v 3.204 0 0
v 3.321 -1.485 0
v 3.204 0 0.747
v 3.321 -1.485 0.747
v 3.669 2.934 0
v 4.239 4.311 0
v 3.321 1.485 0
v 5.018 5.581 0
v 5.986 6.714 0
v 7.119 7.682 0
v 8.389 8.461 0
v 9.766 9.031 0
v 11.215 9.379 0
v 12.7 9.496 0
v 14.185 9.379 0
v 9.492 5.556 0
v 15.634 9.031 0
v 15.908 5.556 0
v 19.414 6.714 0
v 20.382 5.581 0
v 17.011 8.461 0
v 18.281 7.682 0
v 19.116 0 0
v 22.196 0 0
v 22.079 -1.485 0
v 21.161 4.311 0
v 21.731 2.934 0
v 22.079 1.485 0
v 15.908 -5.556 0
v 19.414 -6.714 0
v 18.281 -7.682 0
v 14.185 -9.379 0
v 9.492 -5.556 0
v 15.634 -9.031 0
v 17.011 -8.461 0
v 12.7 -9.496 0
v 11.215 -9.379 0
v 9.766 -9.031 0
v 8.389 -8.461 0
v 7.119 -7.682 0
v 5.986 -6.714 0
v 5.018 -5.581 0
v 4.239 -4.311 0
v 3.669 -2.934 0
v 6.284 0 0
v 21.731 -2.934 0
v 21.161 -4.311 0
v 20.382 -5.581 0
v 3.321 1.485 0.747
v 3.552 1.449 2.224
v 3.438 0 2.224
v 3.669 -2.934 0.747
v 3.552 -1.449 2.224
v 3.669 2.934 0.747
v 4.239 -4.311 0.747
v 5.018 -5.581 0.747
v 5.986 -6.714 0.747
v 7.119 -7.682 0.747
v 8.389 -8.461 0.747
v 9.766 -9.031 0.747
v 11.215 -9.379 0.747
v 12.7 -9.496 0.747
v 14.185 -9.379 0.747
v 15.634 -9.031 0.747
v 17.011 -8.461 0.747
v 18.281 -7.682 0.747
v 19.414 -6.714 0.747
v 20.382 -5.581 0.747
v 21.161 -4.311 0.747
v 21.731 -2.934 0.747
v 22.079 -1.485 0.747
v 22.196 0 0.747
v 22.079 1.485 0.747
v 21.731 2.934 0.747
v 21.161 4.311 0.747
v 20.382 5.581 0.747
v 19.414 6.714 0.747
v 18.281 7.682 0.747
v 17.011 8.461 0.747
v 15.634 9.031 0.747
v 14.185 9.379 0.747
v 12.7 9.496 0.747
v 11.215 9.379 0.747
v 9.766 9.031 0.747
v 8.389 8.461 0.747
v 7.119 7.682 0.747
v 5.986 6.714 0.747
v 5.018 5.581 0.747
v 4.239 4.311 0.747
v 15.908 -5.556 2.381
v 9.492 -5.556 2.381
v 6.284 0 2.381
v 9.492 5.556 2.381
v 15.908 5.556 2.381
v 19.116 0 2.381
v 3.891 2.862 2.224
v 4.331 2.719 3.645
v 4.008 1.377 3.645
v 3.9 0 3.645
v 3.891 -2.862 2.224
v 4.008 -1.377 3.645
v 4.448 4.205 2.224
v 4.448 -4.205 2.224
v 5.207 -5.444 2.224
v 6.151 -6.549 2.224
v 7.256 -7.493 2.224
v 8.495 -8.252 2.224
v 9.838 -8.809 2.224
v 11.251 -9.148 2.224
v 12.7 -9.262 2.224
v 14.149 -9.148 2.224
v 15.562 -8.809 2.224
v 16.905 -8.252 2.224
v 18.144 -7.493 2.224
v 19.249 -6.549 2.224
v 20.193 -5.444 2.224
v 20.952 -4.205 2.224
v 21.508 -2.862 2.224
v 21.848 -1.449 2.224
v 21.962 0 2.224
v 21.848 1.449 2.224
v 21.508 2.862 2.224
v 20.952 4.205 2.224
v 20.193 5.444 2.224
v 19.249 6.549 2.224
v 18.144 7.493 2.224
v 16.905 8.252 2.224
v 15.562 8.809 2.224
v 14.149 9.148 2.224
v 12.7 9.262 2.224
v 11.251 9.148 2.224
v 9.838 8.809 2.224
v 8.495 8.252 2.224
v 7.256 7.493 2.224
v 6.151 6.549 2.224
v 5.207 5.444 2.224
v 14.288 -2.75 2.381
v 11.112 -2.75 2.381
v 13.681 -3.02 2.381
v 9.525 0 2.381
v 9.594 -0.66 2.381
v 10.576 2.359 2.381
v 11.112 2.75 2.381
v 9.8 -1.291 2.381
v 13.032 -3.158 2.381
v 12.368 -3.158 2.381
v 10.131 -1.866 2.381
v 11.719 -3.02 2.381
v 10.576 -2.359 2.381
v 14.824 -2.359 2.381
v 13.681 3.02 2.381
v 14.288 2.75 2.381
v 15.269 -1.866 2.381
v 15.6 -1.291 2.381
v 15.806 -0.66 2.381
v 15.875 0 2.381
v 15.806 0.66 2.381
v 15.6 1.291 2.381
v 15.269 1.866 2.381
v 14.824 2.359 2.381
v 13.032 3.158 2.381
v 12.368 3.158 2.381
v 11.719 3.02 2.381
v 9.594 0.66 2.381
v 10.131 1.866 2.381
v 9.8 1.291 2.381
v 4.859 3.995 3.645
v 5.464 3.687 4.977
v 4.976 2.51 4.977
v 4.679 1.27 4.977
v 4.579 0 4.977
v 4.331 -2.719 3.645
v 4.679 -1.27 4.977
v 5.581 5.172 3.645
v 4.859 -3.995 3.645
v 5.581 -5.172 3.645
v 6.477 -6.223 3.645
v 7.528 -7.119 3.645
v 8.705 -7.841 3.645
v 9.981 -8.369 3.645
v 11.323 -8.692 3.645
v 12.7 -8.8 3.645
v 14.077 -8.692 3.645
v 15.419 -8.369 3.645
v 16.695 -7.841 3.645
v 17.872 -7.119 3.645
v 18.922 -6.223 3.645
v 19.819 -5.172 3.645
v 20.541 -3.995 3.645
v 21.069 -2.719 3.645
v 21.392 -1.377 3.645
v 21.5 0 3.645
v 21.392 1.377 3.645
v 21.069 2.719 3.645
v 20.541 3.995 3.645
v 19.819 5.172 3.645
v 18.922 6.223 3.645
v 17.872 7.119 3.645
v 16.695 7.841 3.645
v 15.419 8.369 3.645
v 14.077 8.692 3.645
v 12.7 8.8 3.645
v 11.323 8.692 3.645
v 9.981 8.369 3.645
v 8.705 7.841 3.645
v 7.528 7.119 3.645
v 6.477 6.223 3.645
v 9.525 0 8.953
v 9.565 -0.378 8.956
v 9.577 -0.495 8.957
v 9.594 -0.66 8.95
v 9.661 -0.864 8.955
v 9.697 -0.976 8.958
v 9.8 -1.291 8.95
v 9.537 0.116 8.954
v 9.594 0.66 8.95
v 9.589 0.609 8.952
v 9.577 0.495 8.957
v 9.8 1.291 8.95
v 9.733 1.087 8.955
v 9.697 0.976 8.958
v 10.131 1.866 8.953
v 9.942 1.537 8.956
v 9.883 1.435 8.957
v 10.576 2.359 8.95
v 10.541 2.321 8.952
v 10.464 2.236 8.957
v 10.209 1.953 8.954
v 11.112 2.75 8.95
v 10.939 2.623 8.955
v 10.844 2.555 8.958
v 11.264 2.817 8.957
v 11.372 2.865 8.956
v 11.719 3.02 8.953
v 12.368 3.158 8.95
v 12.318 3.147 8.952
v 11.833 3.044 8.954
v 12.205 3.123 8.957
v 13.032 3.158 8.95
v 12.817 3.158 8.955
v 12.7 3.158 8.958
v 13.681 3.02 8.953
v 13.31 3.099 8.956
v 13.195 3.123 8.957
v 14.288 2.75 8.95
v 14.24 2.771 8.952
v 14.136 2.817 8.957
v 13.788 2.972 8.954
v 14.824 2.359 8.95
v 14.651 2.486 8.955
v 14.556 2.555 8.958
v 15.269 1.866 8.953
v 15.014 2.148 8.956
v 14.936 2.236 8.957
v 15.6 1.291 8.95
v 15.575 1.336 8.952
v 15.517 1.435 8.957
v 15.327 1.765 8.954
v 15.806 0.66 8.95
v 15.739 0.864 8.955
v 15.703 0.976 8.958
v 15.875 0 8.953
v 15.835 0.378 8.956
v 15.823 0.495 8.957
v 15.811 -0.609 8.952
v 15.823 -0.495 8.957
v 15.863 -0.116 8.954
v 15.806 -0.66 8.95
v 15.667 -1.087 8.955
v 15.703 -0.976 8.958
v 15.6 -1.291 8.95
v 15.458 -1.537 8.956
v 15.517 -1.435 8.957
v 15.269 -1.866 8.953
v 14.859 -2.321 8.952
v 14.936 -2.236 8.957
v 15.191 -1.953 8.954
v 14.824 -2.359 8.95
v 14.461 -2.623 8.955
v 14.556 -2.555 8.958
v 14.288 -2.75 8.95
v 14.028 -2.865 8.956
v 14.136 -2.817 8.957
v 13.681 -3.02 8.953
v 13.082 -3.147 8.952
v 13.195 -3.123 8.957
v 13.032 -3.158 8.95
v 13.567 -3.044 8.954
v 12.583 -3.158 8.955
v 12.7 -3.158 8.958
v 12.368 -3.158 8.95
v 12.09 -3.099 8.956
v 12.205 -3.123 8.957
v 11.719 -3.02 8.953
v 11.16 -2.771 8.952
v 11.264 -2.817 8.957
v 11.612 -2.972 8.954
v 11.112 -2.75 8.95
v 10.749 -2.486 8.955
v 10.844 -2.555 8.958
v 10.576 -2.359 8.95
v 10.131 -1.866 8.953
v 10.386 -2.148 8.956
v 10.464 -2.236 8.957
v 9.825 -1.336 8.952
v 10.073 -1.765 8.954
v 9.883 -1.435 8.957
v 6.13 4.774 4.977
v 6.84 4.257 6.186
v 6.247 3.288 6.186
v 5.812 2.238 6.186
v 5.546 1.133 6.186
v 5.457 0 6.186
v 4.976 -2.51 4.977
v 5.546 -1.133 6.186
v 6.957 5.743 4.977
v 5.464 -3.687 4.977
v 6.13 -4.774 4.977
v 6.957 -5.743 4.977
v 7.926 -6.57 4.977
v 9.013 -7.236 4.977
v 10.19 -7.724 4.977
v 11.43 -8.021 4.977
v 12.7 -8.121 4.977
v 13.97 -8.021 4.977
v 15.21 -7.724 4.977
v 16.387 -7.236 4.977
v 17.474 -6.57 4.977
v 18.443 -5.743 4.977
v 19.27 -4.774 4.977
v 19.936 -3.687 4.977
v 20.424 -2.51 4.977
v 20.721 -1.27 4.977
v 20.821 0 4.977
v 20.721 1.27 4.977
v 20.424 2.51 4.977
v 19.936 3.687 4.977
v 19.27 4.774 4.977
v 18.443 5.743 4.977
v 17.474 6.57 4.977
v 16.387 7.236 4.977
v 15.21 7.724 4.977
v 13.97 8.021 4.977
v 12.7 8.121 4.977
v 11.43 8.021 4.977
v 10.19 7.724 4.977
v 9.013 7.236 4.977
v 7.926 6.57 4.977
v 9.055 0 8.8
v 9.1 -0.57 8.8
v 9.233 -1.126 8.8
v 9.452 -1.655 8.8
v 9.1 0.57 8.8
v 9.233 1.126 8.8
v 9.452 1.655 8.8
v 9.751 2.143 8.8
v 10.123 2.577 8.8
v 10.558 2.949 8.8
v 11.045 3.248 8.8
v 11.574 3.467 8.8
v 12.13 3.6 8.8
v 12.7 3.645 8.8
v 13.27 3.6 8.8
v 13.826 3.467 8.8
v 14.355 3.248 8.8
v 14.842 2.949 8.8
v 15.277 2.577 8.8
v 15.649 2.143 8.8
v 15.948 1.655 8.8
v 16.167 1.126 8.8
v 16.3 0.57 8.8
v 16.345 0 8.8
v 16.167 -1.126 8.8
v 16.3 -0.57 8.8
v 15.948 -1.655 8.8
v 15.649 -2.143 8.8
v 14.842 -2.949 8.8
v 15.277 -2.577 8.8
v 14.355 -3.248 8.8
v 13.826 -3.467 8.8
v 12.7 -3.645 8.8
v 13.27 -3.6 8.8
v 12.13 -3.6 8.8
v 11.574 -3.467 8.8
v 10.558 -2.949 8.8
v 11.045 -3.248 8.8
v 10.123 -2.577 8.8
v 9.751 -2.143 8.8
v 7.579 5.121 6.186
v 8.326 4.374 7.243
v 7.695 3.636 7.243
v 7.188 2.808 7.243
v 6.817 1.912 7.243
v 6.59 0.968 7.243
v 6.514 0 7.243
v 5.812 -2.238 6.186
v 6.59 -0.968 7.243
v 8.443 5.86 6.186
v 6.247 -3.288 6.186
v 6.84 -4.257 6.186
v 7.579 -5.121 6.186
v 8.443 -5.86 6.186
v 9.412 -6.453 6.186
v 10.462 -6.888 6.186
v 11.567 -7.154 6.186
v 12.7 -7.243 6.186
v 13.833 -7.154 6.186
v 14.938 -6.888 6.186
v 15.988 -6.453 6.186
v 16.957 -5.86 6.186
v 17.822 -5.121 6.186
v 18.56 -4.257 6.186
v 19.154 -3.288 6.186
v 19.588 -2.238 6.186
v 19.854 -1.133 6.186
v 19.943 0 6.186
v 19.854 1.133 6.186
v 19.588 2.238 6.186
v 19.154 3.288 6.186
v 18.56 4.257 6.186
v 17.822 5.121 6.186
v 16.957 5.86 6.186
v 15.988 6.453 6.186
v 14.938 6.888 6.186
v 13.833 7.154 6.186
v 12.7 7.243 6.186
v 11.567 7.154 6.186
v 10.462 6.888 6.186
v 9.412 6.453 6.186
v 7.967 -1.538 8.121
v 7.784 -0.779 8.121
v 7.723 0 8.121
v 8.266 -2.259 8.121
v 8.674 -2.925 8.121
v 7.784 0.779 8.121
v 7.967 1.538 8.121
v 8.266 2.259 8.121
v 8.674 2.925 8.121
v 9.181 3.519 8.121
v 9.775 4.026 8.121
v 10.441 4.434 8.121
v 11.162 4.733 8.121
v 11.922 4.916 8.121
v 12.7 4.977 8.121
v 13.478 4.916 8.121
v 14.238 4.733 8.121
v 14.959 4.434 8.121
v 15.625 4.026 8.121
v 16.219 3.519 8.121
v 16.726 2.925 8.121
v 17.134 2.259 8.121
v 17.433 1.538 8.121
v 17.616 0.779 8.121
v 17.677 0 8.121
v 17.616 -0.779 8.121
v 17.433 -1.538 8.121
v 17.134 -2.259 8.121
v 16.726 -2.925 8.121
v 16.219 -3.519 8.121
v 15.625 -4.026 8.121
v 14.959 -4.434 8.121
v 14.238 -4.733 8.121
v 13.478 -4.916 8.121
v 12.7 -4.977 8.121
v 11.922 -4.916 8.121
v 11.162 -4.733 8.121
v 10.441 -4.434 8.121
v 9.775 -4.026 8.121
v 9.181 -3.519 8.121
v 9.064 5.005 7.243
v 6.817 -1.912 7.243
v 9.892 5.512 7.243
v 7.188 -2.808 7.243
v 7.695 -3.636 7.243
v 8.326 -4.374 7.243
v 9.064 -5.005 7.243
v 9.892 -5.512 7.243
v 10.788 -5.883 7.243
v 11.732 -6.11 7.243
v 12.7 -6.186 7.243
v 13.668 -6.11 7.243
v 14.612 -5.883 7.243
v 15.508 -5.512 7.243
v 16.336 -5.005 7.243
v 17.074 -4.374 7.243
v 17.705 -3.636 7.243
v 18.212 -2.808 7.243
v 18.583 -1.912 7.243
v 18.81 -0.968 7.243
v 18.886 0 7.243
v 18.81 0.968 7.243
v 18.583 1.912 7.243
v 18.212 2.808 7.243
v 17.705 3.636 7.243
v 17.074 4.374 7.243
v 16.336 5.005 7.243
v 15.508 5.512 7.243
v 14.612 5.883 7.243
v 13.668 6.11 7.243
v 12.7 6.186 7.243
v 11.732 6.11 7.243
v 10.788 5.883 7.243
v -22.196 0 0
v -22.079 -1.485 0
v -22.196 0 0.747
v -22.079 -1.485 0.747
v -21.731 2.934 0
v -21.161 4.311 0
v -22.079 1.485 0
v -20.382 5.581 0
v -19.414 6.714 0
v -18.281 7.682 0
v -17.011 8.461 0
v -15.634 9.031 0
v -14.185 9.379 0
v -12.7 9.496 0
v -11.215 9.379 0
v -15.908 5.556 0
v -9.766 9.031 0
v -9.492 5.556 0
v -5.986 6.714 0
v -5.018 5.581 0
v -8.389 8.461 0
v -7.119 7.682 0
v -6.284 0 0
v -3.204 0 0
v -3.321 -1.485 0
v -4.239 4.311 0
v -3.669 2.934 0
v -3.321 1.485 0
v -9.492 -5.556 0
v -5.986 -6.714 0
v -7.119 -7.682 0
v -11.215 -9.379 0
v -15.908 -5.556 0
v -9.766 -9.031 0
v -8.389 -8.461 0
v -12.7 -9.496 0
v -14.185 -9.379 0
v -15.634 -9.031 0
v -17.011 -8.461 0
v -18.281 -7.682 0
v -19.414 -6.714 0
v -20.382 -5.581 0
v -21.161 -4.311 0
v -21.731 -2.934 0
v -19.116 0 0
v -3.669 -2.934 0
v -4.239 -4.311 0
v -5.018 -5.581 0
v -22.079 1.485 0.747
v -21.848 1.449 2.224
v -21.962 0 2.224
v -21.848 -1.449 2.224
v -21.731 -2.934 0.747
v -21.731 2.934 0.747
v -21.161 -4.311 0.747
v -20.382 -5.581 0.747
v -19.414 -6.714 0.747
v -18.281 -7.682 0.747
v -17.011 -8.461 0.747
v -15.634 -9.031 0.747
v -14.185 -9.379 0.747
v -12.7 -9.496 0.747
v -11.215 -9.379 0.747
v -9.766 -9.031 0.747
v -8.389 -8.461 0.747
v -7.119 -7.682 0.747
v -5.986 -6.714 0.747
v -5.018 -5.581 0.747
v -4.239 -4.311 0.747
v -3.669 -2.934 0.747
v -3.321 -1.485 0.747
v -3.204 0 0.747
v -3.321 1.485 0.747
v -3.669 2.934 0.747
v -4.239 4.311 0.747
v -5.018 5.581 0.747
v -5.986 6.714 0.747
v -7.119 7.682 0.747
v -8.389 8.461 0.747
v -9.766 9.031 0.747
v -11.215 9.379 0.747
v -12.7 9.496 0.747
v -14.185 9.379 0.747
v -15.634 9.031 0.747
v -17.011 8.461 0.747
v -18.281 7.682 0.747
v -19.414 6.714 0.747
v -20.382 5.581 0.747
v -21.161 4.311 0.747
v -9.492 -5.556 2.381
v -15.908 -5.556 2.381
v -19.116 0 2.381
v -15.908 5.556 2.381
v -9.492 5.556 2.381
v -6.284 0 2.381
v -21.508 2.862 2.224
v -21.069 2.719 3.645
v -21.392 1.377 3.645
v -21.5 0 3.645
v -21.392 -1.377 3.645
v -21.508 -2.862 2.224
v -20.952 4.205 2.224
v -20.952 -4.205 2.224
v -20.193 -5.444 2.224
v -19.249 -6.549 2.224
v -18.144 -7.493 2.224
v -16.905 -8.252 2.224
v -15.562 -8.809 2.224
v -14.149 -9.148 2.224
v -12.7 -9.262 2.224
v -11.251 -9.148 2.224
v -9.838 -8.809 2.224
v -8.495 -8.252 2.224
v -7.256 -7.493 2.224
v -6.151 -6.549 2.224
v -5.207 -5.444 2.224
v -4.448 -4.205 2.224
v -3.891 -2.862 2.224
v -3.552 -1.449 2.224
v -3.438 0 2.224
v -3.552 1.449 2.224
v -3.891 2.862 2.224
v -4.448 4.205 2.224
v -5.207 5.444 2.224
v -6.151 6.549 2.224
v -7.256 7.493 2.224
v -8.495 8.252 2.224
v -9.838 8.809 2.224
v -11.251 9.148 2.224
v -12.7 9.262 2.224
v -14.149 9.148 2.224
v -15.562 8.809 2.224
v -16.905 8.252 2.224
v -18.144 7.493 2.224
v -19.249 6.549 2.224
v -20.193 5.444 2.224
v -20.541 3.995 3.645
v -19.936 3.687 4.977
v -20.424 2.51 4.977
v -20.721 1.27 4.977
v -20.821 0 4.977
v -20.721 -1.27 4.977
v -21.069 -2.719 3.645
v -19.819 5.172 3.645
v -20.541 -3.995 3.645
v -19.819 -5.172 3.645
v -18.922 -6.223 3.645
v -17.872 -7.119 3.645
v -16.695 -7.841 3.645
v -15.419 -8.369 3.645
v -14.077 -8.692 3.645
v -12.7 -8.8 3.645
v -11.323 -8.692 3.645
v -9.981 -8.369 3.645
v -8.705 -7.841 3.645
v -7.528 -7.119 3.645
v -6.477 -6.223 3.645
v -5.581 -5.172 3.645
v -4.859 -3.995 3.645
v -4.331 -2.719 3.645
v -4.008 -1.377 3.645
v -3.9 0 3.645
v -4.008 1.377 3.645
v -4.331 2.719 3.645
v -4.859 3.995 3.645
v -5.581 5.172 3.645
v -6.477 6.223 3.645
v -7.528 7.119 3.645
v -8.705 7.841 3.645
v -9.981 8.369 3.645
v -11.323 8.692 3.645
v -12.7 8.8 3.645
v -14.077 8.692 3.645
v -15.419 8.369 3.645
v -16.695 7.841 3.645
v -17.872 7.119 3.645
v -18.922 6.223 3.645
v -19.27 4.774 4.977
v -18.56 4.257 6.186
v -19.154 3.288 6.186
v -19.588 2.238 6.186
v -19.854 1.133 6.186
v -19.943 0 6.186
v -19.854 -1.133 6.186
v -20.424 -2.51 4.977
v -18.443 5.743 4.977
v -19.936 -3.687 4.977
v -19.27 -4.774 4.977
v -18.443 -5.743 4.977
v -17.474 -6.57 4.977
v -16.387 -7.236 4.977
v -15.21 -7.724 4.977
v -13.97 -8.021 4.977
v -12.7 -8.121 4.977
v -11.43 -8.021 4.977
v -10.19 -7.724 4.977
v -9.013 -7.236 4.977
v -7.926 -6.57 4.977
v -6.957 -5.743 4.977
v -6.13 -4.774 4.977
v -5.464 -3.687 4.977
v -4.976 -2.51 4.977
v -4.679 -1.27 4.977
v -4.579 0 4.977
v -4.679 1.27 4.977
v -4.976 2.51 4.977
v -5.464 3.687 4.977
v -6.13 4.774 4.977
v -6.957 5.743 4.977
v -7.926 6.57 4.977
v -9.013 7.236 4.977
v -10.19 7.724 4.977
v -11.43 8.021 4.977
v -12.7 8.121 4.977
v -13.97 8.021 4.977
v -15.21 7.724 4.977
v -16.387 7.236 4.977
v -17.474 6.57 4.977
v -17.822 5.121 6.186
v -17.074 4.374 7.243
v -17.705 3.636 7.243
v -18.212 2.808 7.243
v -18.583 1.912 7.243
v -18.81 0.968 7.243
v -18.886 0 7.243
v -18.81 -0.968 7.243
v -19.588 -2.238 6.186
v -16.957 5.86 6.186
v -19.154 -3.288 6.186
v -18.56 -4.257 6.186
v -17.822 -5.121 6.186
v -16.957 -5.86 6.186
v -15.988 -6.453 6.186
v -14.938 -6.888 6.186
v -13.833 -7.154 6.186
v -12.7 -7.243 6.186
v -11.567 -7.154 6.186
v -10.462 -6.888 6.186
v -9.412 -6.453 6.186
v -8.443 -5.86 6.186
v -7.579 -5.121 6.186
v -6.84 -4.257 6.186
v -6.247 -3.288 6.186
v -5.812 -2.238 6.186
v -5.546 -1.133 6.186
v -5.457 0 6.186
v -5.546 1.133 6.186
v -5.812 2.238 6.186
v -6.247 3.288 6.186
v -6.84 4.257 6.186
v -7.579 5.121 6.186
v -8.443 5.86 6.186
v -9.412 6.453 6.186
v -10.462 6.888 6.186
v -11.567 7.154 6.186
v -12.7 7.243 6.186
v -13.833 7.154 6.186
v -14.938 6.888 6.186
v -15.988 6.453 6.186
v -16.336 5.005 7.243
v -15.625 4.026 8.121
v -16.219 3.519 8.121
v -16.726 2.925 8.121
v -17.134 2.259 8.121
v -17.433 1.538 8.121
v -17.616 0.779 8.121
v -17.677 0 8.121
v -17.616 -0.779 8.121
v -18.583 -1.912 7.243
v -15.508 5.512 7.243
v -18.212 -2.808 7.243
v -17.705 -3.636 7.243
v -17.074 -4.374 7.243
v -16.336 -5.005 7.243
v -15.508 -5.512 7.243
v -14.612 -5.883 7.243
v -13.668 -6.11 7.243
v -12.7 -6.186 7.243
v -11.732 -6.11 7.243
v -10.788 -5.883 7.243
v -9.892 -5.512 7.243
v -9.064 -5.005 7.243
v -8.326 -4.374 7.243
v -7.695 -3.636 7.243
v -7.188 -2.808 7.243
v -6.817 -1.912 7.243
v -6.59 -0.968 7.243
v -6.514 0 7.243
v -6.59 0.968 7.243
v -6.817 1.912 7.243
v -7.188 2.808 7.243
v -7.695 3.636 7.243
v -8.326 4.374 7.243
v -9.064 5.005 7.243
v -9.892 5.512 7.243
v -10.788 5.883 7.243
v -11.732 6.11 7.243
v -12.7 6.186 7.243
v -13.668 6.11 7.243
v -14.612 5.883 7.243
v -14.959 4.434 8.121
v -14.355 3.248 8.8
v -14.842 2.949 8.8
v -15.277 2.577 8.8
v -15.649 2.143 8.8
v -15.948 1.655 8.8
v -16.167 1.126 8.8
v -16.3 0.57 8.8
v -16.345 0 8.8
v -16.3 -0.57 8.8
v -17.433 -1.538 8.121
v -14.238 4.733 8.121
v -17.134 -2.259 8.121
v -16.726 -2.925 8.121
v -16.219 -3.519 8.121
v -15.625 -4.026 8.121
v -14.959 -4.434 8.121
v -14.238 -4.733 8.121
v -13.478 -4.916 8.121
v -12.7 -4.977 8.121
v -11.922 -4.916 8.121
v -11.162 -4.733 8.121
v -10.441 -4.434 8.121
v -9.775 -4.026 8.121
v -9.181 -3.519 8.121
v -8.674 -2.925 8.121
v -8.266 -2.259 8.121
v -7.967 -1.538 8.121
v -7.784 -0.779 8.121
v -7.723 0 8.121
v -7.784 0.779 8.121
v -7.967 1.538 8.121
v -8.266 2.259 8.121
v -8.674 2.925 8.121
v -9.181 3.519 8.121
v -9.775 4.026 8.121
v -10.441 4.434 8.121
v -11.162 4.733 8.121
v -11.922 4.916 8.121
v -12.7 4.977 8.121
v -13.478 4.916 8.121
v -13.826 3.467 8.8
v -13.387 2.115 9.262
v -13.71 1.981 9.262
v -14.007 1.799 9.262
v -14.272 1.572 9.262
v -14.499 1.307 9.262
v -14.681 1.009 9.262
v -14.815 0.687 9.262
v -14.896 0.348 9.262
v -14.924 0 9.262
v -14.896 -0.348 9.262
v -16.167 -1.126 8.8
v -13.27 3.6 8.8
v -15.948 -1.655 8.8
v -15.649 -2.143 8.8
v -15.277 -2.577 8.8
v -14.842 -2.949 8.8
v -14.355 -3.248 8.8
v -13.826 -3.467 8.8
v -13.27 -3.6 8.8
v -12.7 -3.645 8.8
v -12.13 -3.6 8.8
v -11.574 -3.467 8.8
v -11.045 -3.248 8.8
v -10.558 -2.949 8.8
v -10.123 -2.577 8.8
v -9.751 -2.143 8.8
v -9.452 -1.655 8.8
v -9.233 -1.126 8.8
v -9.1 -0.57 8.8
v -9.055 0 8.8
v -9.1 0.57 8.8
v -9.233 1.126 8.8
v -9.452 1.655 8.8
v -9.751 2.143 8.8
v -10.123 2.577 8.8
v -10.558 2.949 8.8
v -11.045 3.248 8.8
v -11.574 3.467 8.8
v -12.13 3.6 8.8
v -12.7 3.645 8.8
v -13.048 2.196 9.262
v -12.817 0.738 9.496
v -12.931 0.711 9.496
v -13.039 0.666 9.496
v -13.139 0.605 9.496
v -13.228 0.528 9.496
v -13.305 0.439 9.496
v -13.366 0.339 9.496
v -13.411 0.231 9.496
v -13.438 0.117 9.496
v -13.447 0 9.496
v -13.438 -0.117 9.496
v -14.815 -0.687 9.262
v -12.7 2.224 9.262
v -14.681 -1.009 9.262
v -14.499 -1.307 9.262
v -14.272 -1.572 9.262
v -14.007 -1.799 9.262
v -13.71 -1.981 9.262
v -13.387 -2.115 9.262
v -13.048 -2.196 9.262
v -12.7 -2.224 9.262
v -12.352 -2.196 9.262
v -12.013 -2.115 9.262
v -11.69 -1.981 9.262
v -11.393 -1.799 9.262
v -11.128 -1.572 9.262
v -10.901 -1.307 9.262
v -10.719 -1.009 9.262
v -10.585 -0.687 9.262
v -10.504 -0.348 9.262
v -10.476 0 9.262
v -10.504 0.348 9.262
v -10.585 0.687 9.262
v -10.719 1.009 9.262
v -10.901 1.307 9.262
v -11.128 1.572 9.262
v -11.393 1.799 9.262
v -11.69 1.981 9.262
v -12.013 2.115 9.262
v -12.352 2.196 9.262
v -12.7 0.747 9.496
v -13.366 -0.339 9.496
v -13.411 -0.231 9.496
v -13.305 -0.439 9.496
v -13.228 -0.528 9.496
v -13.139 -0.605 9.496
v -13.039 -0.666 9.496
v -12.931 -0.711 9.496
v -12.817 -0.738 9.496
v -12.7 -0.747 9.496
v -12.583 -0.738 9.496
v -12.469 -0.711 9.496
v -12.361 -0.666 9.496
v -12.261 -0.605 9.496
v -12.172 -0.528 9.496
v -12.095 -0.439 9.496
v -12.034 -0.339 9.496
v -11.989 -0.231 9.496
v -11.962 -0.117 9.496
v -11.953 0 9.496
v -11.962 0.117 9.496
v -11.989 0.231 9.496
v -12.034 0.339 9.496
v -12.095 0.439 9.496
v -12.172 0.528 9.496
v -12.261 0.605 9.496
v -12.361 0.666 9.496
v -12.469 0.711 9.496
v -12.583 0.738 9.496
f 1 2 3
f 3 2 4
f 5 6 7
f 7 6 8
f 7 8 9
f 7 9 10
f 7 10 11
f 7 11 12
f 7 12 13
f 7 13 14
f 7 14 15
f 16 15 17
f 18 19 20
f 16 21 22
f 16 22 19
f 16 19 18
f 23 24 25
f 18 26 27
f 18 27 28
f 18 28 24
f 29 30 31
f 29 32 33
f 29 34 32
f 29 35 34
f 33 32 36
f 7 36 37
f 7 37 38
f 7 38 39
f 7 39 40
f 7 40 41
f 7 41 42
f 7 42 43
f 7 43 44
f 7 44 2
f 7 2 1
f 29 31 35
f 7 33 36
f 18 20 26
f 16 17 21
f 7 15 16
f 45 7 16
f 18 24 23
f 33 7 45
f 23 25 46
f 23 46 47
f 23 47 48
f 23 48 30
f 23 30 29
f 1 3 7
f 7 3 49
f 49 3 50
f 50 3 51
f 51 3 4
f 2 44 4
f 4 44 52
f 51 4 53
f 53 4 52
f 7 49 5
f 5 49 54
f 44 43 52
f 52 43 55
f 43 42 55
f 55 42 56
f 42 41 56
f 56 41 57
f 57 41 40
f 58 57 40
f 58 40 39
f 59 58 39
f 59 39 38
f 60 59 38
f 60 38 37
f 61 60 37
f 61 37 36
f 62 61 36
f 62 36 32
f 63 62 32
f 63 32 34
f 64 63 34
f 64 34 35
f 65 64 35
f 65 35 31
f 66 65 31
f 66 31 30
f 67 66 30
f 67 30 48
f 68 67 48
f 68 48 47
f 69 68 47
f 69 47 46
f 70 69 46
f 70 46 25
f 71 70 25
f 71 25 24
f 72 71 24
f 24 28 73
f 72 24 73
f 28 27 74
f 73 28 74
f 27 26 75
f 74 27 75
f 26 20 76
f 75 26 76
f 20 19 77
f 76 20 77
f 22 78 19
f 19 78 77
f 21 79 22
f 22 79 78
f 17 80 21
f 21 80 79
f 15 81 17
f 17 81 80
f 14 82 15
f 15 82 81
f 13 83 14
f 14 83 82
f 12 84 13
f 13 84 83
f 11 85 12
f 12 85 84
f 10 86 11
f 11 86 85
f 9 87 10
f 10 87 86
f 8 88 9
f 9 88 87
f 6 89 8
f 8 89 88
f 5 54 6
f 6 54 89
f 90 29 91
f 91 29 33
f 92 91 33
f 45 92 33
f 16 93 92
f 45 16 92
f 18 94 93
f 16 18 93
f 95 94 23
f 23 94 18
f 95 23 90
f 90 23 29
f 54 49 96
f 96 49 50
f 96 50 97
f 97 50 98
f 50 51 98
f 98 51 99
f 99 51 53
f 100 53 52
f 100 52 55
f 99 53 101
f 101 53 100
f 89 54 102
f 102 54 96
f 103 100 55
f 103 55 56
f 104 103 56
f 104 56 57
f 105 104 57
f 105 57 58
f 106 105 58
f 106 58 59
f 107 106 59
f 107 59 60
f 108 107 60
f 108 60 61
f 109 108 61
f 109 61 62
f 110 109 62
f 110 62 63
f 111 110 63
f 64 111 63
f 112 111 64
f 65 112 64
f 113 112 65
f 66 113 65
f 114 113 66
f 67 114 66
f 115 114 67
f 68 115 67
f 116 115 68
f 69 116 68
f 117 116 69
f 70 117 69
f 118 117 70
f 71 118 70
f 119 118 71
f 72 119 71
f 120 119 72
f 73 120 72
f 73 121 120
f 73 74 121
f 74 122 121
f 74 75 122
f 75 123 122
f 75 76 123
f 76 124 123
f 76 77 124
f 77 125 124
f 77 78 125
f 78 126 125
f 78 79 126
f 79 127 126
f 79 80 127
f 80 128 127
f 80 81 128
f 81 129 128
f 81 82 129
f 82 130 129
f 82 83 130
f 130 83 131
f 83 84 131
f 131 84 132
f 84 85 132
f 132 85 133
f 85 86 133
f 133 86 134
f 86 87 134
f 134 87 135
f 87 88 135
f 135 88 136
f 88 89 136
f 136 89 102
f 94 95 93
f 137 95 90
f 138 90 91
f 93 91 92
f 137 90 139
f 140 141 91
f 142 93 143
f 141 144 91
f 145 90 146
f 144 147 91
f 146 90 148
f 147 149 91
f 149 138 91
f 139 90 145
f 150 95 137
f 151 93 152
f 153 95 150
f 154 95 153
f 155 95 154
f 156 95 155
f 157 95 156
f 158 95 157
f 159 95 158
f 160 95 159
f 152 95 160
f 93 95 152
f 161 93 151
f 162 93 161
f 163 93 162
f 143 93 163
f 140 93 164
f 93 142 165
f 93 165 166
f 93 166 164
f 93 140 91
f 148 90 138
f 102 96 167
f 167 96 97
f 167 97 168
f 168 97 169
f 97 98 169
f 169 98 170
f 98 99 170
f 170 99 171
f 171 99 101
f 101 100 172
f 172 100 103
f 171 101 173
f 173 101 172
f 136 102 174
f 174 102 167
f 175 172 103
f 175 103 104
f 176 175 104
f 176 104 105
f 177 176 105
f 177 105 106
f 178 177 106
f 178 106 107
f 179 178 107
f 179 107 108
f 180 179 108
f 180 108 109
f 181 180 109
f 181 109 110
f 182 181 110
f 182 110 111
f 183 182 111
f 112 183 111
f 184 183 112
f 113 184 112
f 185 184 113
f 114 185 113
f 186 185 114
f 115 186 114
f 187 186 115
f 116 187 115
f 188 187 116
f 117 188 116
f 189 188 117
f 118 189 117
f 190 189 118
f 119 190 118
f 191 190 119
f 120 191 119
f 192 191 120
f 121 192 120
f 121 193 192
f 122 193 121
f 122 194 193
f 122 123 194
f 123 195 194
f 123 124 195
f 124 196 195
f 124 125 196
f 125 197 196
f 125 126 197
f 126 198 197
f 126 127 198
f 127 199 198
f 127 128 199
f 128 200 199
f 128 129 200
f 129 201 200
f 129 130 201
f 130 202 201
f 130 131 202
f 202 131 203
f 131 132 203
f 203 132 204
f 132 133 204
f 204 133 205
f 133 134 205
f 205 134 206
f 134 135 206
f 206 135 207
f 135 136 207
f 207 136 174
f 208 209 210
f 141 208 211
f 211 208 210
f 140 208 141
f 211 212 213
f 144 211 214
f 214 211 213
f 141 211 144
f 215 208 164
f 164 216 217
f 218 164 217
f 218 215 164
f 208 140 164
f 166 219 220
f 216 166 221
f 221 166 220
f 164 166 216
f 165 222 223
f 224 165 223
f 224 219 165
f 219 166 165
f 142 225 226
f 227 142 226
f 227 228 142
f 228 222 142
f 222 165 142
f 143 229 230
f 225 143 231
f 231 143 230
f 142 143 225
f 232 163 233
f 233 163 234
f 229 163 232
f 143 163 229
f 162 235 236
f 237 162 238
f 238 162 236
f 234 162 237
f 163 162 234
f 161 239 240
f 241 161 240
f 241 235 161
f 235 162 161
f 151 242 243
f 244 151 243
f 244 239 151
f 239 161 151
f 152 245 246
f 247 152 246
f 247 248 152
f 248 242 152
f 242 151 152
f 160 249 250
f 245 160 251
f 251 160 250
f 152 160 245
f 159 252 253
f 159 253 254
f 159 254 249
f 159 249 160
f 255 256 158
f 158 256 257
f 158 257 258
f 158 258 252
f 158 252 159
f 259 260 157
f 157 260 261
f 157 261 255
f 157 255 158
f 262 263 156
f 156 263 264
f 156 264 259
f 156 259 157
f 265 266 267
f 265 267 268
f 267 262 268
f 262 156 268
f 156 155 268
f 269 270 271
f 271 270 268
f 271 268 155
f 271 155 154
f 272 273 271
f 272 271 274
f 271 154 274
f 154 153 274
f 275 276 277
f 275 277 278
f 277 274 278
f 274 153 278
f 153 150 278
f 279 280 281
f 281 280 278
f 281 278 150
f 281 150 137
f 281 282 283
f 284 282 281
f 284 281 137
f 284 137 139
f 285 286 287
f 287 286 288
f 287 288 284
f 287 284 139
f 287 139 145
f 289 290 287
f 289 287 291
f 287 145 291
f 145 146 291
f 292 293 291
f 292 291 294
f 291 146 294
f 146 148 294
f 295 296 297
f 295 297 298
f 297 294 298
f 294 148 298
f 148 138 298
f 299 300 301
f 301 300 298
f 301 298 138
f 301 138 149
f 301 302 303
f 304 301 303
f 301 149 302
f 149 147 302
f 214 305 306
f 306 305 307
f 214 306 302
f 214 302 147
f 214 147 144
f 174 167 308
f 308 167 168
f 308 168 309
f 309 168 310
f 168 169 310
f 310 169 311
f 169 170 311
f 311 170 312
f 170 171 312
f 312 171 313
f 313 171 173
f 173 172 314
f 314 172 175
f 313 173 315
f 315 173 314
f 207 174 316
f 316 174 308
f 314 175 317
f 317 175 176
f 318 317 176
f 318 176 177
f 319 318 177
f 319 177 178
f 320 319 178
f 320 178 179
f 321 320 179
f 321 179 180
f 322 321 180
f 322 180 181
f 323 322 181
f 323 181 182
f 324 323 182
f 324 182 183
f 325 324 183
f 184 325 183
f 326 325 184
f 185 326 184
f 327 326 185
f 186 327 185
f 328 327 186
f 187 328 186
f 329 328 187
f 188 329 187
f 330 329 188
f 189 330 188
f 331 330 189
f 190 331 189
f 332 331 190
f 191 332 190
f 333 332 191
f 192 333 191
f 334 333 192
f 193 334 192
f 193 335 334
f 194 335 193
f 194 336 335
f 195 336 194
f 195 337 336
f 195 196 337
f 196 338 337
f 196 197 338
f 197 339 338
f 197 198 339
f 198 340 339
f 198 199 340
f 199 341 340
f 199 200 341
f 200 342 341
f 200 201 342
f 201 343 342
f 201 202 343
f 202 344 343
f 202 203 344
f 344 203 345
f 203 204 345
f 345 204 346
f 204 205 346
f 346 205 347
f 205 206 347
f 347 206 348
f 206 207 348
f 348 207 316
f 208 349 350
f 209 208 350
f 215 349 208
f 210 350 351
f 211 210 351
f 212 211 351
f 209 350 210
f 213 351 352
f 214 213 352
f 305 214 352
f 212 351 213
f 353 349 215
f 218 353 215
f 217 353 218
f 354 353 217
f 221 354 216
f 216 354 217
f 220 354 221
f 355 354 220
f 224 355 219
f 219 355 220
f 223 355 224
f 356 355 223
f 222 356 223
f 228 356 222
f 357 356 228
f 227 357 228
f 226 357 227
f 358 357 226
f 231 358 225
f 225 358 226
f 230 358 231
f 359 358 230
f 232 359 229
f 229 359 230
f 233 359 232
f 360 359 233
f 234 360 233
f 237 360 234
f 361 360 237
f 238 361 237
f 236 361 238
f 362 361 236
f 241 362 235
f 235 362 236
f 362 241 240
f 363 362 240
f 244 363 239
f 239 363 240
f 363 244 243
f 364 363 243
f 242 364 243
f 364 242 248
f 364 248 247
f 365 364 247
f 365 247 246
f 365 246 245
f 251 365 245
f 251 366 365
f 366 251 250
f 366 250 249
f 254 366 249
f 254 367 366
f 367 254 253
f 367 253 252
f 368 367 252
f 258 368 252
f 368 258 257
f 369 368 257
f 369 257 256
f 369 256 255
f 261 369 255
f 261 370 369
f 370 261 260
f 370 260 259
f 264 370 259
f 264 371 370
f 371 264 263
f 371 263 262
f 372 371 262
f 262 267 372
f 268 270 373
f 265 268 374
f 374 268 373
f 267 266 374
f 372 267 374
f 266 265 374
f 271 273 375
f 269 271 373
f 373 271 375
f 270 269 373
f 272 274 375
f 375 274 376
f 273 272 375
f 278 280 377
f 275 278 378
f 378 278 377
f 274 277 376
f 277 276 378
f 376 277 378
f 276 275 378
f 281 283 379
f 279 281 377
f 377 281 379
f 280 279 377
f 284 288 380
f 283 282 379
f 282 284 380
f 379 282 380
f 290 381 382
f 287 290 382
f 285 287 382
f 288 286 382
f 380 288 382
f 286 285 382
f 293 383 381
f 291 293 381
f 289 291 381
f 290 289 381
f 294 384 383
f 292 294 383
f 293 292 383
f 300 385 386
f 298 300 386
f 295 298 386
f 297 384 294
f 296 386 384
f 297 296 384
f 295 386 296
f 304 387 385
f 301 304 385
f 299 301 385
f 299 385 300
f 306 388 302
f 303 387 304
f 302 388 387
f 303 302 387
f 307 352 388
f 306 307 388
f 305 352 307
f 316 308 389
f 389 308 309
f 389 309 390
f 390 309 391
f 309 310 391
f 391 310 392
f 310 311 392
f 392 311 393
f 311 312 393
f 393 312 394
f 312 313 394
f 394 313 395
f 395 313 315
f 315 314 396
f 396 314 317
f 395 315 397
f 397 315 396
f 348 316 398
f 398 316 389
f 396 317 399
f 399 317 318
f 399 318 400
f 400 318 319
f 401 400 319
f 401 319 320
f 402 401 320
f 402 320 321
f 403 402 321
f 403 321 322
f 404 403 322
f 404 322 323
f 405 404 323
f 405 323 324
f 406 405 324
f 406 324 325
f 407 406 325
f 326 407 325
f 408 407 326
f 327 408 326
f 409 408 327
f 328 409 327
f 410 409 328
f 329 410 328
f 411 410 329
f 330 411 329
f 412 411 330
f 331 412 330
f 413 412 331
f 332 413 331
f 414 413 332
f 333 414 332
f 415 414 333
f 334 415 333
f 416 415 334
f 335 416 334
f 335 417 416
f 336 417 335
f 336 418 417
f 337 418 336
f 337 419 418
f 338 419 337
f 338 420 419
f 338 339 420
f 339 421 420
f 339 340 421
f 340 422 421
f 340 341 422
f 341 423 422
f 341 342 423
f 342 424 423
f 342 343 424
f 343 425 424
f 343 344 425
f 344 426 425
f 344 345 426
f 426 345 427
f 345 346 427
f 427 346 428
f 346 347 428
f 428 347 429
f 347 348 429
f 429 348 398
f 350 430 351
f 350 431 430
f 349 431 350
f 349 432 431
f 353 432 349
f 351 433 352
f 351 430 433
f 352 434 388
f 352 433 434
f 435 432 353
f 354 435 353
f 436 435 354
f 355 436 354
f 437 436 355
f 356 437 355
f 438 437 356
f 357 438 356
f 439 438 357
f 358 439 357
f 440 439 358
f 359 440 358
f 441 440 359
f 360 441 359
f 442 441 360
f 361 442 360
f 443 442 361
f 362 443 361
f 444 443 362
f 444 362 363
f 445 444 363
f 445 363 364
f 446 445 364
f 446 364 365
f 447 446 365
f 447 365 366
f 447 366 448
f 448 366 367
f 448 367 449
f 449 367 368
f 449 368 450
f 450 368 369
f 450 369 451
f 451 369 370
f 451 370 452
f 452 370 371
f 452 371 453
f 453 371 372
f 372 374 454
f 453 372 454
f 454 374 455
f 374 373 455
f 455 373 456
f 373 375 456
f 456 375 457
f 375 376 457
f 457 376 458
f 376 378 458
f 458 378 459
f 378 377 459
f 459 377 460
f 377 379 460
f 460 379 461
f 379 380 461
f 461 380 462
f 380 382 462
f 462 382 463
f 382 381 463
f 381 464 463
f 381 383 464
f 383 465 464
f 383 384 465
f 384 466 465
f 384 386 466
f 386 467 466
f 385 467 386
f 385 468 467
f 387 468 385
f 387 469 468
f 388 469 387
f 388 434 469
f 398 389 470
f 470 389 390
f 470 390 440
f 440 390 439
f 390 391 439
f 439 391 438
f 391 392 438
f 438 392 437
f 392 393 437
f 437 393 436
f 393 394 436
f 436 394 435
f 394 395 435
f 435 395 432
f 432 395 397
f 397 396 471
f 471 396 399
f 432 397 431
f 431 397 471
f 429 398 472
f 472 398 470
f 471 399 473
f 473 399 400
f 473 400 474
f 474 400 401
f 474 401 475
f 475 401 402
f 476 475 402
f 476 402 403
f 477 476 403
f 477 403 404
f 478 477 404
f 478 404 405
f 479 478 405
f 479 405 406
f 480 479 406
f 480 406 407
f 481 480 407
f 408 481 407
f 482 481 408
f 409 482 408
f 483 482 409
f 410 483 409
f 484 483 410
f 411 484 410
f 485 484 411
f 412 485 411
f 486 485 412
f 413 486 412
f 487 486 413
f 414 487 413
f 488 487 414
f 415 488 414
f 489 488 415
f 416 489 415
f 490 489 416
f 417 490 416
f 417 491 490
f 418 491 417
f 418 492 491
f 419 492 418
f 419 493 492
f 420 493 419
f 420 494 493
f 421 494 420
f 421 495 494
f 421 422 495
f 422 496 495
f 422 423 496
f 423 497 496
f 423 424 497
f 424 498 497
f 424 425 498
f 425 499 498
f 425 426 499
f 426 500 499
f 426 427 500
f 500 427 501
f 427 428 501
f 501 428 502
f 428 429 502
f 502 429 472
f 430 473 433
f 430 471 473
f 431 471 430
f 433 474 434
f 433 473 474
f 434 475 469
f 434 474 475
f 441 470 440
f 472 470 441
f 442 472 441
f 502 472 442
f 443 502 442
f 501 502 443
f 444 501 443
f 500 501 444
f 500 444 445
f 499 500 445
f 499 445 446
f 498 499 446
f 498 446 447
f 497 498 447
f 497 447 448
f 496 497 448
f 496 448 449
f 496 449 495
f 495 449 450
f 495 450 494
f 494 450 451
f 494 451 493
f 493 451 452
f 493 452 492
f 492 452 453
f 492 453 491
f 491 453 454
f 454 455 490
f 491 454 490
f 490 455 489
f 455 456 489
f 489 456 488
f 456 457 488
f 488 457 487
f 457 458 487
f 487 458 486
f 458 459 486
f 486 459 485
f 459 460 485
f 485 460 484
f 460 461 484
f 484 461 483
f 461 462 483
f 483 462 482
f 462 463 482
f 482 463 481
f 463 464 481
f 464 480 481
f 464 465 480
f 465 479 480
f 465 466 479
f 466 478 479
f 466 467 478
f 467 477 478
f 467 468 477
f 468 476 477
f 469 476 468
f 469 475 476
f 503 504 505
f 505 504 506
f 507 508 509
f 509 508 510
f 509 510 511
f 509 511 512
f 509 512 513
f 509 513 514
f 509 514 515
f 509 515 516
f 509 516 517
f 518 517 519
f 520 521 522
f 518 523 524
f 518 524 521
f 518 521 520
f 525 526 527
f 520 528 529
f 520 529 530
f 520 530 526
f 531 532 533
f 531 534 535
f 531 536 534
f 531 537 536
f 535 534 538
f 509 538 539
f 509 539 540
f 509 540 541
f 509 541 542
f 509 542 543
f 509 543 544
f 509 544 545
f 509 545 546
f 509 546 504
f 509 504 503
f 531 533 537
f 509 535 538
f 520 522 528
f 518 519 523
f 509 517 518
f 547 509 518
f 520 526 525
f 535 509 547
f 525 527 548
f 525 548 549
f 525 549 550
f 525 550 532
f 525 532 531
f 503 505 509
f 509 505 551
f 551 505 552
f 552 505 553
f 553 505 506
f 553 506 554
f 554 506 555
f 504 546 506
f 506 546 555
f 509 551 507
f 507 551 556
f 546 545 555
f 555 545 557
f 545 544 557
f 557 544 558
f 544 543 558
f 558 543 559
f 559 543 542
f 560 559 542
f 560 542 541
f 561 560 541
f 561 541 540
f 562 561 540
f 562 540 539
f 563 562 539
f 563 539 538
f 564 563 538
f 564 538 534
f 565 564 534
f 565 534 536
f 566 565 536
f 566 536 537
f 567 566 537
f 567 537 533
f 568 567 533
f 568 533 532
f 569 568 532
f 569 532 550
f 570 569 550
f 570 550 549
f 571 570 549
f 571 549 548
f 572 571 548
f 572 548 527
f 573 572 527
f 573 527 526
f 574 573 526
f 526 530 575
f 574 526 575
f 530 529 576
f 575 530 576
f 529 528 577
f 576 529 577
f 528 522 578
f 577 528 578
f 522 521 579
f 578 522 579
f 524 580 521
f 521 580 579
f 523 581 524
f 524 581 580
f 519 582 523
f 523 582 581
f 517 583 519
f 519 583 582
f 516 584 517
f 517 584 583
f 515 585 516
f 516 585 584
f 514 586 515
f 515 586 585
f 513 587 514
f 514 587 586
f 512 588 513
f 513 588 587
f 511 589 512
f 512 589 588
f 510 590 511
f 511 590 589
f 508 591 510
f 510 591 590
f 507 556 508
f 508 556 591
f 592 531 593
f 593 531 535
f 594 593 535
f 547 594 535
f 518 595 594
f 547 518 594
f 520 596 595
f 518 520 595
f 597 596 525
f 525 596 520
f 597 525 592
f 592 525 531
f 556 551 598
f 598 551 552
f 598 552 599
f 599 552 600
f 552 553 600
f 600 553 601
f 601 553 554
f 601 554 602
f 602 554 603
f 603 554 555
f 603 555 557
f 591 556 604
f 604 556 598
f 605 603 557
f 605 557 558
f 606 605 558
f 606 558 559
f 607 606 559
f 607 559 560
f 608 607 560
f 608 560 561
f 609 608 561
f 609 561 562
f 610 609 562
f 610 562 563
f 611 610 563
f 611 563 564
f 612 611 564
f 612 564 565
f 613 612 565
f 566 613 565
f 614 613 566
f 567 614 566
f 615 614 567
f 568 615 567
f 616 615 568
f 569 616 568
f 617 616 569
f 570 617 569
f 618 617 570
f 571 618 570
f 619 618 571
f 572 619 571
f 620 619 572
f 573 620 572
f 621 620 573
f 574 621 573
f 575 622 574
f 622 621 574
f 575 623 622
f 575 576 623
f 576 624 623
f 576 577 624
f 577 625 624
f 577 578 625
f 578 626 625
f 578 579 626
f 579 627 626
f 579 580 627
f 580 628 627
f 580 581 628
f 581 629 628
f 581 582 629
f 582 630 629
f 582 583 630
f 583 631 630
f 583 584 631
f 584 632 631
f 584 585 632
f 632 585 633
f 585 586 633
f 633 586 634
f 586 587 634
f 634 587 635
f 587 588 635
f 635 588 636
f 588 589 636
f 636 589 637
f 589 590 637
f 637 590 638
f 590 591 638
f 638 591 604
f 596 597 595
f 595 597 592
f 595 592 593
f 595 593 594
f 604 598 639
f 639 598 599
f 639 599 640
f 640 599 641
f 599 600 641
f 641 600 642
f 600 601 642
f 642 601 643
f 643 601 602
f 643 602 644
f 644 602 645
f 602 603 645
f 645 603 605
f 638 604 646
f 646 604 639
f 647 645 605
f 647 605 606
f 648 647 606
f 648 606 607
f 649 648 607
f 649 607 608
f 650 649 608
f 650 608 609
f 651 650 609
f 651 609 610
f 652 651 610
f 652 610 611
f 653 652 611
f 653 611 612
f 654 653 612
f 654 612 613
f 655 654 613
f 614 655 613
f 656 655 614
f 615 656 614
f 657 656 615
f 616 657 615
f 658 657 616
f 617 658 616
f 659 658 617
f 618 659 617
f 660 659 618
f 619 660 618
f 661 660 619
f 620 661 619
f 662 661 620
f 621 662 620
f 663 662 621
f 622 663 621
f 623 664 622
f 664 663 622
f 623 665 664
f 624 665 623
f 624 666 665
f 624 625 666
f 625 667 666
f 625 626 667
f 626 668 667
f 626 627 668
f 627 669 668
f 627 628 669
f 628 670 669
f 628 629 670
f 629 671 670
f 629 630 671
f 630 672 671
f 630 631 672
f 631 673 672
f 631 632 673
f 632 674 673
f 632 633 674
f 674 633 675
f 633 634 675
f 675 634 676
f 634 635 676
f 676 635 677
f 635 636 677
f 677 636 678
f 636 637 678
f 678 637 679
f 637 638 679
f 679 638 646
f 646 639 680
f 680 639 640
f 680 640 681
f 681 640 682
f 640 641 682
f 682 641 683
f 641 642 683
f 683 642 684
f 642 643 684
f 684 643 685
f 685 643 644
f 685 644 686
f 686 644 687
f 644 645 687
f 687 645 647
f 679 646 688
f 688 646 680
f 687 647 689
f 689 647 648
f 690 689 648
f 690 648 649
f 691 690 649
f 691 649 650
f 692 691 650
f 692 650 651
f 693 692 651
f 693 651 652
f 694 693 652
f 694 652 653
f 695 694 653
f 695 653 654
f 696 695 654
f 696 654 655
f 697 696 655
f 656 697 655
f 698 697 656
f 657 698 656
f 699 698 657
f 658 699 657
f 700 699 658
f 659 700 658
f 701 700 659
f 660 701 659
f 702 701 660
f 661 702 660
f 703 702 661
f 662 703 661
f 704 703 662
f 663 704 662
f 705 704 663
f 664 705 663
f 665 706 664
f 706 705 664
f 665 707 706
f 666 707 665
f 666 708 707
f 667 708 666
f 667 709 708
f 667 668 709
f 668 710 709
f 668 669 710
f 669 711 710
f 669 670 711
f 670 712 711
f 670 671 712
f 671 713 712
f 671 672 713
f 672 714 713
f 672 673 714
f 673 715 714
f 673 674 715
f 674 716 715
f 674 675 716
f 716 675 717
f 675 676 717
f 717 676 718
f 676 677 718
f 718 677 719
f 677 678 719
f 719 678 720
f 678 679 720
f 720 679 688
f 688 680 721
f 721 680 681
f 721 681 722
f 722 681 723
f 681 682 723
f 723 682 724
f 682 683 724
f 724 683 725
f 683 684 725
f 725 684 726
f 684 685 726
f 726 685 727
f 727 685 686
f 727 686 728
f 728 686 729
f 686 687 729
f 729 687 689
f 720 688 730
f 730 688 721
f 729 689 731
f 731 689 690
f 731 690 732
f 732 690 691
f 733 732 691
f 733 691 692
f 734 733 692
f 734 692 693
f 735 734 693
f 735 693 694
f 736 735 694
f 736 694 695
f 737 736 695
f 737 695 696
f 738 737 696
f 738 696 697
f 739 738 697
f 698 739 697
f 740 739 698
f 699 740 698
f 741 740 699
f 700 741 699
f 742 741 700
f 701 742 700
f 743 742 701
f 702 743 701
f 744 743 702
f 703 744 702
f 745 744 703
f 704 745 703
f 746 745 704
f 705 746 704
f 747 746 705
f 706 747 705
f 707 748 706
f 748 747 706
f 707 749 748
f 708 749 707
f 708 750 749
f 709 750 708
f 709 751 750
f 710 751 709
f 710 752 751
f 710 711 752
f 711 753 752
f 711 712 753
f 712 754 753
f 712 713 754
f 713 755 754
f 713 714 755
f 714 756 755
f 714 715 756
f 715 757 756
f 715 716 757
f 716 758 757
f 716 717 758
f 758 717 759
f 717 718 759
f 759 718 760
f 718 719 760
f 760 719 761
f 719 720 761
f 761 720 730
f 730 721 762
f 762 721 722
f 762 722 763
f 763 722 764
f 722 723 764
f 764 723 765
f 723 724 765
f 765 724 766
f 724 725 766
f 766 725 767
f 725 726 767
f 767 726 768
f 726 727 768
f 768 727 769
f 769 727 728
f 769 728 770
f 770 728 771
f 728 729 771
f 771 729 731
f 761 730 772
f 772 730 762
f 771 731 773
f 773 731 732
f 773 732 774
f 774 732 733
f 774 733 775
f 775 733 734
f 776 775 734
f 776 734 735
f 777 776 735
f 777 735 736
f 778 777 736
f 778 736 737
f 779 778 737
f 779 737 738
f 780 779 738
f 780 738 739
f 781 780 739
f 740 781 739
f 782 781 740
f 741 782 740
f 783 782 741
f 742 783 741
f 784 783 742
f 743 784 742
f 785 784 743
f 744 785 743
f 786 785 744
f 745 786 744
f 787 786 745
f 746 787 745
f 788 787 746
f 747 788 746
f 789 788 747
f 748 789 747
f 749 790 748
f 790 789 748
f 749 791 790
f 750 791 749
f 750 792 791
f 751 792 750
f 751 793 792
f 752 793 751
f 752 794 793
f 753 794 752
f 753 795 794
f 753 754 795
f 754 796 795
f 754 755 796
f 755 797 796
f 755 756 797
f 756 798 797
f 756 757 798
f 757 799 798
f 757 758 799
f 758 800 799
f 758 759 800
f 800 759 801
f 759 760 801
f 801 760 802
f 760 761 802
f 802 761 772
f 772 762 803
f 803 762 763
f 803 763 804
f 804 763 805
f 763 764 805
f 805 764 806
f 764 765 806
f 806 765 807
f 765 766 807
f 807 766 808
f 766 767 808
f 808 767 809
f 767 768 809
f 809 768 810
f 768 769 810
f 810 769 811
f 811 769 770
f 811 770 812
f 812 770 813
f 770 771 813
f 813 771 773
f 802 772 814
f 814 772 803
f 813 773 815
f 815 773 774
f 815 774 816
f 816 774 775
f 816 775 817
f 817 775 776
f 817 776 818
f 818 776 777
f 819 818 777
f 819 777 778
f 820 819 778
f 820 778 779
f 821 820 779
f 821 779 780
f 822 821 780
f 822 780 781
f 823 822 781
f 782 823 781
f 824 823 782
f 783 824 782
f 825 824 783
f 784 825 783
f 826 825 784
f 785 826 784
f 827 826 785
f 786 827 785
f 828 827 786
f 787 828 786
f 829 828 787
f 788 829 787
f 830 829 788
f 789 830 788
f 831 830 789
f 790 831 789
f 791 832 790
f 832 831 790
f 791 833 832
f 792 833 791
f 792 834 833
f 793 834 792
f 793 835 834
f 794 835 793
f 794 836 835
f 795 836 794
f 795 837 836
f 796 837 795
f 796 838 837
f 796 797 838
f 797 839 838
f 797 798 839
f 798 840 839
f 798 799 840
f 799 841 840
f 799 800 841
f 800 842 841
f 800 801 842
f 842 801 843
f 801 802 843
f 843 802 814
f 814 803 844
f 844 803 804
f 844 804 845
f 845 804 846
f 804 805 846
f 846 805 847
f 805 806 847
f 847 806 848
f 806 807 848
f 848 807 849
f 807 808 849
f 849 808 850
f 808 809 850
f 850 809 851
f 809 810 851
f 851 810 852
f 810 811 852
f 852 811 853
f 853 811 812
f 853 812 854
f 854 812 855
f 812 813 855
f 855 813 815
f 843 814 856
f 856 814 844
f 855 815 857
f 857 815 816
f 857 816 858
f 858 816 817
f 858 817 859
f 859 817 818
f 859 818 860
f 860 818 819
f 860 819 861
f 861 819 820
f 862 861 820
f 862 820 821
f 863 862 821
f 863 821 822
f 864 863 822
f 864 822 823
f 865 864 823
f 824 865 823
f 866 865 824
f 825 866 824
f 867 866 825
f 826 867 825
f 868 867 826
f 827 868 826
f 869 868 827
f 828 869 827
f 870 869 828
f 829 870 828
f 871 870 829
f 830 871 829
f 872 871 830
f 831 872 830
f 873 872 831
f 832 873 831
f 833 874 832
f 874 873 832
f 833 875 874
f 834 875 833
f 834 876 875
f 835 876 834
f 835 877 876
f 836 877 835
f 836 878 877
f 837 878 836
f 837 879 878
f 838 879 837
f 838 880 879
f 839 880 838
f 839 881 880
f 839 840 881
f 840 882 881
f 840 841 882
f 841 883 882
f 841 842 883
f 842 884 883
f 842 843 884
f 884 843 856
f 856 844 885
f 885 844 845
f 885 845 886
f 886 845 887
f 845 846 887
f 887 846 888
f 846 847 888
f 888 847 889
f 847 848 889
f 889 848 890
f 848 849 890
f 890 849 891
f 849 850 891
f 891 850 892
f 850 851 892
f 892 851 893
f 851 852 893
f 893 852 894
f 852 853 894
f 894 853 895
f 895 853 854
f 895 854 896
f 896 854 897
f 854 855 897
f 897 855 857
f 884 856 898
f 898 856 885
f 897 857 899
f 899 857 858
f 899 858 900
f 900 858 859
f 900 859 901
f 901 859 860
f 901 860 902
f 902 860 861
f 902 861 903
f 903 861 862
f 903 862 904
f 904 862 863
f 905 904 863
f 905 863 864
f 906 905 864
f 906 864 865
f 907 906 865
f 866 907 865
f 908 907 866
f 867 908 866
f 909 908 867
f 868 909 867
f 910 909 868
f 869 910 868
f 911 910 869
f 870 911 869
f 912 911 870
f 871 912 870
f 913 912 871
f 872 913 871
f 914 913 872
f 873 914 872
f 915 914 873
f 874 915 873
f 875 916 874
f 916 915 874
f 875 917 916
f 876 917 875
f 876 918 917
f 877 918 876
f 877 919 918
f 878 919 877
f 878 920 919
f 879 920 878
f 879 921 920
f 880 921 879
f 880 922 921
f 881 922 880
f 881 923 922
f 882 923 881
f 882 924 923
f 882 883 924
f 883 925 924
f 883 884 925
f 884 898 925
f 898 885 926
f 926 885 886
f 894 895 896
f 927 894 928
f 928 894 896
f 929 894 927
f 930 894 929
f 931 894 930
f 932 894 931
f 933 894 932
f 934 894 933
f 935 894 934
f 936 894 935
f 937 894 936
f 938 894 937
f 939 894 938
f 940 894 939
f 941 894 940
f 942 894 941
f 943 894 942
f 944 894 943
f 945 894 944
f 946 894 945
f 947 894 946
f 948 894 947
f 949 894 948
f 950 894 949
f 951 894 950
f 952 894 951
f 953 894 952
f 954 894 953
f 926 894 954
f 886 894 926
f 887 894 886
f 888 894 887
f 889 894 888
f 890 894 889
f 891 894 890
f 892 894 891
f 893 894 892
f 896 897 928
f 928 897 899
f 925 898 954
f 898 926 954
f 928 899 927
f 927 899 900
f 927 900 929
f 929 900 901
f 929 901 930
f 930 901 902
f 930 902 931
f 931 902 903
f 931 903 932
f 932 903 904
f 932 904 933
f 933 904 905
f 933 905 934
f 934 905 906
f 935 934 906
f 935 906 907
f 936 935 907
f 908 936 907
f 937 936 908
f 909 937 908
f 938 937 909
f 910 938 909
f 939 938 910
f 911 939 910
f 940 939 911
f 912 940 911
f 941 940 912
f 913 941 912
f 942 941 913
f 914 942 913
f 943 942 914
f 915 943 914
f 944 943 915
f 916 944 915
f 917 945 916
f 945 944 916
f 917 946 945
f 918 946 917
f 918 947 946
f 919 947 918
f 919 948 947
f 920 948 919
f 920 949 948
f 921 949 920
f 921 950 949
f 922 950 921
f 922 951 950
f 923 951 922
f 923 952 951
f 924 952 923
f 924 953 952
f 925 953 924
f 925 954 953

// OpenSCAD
// Trying to be a trekking pole camera mount
// For now, testing a 2 piece ball to contain a 1/4" (7/16" hex head) bolt
// jellsworth Dec 2014
//

use <Libs.scad>;

// units = inches
// scale to mm for printing
scale([25.4, 25.4, 25.4]) {

// Create top half of ball
translate([0.5, 0, 0]){
	difference() {
		sphere(3/8, $fn=40);
		hexbolt();
		translate([0, 0, -0.5]) {
			cube([1, 1, 1], true);
		}
	} // end difference block
} // end of top ball half

// Create bottom half of ball
rotate([180, 0, 0]) {
	translate([-0.5, 0, 0]){
		difference() {
			sphere(3/8, $fn=40);
			hexbolt();
			translate([0, 0, 0.5]) {
				cube([1, 1, 1], true);
			}
		} // end difference block
	}
} // end of top ball half
	
} // end scale block

module hexbolt(boltDiam=1/4, hexSize=7/16, boltLen=2, headThick=3/16) {
	
	union() {
		cylinder(h = boltLen, d=boltDiam, $fn=30);
		hex(hexSize, headThick, true, true );
	}

}
